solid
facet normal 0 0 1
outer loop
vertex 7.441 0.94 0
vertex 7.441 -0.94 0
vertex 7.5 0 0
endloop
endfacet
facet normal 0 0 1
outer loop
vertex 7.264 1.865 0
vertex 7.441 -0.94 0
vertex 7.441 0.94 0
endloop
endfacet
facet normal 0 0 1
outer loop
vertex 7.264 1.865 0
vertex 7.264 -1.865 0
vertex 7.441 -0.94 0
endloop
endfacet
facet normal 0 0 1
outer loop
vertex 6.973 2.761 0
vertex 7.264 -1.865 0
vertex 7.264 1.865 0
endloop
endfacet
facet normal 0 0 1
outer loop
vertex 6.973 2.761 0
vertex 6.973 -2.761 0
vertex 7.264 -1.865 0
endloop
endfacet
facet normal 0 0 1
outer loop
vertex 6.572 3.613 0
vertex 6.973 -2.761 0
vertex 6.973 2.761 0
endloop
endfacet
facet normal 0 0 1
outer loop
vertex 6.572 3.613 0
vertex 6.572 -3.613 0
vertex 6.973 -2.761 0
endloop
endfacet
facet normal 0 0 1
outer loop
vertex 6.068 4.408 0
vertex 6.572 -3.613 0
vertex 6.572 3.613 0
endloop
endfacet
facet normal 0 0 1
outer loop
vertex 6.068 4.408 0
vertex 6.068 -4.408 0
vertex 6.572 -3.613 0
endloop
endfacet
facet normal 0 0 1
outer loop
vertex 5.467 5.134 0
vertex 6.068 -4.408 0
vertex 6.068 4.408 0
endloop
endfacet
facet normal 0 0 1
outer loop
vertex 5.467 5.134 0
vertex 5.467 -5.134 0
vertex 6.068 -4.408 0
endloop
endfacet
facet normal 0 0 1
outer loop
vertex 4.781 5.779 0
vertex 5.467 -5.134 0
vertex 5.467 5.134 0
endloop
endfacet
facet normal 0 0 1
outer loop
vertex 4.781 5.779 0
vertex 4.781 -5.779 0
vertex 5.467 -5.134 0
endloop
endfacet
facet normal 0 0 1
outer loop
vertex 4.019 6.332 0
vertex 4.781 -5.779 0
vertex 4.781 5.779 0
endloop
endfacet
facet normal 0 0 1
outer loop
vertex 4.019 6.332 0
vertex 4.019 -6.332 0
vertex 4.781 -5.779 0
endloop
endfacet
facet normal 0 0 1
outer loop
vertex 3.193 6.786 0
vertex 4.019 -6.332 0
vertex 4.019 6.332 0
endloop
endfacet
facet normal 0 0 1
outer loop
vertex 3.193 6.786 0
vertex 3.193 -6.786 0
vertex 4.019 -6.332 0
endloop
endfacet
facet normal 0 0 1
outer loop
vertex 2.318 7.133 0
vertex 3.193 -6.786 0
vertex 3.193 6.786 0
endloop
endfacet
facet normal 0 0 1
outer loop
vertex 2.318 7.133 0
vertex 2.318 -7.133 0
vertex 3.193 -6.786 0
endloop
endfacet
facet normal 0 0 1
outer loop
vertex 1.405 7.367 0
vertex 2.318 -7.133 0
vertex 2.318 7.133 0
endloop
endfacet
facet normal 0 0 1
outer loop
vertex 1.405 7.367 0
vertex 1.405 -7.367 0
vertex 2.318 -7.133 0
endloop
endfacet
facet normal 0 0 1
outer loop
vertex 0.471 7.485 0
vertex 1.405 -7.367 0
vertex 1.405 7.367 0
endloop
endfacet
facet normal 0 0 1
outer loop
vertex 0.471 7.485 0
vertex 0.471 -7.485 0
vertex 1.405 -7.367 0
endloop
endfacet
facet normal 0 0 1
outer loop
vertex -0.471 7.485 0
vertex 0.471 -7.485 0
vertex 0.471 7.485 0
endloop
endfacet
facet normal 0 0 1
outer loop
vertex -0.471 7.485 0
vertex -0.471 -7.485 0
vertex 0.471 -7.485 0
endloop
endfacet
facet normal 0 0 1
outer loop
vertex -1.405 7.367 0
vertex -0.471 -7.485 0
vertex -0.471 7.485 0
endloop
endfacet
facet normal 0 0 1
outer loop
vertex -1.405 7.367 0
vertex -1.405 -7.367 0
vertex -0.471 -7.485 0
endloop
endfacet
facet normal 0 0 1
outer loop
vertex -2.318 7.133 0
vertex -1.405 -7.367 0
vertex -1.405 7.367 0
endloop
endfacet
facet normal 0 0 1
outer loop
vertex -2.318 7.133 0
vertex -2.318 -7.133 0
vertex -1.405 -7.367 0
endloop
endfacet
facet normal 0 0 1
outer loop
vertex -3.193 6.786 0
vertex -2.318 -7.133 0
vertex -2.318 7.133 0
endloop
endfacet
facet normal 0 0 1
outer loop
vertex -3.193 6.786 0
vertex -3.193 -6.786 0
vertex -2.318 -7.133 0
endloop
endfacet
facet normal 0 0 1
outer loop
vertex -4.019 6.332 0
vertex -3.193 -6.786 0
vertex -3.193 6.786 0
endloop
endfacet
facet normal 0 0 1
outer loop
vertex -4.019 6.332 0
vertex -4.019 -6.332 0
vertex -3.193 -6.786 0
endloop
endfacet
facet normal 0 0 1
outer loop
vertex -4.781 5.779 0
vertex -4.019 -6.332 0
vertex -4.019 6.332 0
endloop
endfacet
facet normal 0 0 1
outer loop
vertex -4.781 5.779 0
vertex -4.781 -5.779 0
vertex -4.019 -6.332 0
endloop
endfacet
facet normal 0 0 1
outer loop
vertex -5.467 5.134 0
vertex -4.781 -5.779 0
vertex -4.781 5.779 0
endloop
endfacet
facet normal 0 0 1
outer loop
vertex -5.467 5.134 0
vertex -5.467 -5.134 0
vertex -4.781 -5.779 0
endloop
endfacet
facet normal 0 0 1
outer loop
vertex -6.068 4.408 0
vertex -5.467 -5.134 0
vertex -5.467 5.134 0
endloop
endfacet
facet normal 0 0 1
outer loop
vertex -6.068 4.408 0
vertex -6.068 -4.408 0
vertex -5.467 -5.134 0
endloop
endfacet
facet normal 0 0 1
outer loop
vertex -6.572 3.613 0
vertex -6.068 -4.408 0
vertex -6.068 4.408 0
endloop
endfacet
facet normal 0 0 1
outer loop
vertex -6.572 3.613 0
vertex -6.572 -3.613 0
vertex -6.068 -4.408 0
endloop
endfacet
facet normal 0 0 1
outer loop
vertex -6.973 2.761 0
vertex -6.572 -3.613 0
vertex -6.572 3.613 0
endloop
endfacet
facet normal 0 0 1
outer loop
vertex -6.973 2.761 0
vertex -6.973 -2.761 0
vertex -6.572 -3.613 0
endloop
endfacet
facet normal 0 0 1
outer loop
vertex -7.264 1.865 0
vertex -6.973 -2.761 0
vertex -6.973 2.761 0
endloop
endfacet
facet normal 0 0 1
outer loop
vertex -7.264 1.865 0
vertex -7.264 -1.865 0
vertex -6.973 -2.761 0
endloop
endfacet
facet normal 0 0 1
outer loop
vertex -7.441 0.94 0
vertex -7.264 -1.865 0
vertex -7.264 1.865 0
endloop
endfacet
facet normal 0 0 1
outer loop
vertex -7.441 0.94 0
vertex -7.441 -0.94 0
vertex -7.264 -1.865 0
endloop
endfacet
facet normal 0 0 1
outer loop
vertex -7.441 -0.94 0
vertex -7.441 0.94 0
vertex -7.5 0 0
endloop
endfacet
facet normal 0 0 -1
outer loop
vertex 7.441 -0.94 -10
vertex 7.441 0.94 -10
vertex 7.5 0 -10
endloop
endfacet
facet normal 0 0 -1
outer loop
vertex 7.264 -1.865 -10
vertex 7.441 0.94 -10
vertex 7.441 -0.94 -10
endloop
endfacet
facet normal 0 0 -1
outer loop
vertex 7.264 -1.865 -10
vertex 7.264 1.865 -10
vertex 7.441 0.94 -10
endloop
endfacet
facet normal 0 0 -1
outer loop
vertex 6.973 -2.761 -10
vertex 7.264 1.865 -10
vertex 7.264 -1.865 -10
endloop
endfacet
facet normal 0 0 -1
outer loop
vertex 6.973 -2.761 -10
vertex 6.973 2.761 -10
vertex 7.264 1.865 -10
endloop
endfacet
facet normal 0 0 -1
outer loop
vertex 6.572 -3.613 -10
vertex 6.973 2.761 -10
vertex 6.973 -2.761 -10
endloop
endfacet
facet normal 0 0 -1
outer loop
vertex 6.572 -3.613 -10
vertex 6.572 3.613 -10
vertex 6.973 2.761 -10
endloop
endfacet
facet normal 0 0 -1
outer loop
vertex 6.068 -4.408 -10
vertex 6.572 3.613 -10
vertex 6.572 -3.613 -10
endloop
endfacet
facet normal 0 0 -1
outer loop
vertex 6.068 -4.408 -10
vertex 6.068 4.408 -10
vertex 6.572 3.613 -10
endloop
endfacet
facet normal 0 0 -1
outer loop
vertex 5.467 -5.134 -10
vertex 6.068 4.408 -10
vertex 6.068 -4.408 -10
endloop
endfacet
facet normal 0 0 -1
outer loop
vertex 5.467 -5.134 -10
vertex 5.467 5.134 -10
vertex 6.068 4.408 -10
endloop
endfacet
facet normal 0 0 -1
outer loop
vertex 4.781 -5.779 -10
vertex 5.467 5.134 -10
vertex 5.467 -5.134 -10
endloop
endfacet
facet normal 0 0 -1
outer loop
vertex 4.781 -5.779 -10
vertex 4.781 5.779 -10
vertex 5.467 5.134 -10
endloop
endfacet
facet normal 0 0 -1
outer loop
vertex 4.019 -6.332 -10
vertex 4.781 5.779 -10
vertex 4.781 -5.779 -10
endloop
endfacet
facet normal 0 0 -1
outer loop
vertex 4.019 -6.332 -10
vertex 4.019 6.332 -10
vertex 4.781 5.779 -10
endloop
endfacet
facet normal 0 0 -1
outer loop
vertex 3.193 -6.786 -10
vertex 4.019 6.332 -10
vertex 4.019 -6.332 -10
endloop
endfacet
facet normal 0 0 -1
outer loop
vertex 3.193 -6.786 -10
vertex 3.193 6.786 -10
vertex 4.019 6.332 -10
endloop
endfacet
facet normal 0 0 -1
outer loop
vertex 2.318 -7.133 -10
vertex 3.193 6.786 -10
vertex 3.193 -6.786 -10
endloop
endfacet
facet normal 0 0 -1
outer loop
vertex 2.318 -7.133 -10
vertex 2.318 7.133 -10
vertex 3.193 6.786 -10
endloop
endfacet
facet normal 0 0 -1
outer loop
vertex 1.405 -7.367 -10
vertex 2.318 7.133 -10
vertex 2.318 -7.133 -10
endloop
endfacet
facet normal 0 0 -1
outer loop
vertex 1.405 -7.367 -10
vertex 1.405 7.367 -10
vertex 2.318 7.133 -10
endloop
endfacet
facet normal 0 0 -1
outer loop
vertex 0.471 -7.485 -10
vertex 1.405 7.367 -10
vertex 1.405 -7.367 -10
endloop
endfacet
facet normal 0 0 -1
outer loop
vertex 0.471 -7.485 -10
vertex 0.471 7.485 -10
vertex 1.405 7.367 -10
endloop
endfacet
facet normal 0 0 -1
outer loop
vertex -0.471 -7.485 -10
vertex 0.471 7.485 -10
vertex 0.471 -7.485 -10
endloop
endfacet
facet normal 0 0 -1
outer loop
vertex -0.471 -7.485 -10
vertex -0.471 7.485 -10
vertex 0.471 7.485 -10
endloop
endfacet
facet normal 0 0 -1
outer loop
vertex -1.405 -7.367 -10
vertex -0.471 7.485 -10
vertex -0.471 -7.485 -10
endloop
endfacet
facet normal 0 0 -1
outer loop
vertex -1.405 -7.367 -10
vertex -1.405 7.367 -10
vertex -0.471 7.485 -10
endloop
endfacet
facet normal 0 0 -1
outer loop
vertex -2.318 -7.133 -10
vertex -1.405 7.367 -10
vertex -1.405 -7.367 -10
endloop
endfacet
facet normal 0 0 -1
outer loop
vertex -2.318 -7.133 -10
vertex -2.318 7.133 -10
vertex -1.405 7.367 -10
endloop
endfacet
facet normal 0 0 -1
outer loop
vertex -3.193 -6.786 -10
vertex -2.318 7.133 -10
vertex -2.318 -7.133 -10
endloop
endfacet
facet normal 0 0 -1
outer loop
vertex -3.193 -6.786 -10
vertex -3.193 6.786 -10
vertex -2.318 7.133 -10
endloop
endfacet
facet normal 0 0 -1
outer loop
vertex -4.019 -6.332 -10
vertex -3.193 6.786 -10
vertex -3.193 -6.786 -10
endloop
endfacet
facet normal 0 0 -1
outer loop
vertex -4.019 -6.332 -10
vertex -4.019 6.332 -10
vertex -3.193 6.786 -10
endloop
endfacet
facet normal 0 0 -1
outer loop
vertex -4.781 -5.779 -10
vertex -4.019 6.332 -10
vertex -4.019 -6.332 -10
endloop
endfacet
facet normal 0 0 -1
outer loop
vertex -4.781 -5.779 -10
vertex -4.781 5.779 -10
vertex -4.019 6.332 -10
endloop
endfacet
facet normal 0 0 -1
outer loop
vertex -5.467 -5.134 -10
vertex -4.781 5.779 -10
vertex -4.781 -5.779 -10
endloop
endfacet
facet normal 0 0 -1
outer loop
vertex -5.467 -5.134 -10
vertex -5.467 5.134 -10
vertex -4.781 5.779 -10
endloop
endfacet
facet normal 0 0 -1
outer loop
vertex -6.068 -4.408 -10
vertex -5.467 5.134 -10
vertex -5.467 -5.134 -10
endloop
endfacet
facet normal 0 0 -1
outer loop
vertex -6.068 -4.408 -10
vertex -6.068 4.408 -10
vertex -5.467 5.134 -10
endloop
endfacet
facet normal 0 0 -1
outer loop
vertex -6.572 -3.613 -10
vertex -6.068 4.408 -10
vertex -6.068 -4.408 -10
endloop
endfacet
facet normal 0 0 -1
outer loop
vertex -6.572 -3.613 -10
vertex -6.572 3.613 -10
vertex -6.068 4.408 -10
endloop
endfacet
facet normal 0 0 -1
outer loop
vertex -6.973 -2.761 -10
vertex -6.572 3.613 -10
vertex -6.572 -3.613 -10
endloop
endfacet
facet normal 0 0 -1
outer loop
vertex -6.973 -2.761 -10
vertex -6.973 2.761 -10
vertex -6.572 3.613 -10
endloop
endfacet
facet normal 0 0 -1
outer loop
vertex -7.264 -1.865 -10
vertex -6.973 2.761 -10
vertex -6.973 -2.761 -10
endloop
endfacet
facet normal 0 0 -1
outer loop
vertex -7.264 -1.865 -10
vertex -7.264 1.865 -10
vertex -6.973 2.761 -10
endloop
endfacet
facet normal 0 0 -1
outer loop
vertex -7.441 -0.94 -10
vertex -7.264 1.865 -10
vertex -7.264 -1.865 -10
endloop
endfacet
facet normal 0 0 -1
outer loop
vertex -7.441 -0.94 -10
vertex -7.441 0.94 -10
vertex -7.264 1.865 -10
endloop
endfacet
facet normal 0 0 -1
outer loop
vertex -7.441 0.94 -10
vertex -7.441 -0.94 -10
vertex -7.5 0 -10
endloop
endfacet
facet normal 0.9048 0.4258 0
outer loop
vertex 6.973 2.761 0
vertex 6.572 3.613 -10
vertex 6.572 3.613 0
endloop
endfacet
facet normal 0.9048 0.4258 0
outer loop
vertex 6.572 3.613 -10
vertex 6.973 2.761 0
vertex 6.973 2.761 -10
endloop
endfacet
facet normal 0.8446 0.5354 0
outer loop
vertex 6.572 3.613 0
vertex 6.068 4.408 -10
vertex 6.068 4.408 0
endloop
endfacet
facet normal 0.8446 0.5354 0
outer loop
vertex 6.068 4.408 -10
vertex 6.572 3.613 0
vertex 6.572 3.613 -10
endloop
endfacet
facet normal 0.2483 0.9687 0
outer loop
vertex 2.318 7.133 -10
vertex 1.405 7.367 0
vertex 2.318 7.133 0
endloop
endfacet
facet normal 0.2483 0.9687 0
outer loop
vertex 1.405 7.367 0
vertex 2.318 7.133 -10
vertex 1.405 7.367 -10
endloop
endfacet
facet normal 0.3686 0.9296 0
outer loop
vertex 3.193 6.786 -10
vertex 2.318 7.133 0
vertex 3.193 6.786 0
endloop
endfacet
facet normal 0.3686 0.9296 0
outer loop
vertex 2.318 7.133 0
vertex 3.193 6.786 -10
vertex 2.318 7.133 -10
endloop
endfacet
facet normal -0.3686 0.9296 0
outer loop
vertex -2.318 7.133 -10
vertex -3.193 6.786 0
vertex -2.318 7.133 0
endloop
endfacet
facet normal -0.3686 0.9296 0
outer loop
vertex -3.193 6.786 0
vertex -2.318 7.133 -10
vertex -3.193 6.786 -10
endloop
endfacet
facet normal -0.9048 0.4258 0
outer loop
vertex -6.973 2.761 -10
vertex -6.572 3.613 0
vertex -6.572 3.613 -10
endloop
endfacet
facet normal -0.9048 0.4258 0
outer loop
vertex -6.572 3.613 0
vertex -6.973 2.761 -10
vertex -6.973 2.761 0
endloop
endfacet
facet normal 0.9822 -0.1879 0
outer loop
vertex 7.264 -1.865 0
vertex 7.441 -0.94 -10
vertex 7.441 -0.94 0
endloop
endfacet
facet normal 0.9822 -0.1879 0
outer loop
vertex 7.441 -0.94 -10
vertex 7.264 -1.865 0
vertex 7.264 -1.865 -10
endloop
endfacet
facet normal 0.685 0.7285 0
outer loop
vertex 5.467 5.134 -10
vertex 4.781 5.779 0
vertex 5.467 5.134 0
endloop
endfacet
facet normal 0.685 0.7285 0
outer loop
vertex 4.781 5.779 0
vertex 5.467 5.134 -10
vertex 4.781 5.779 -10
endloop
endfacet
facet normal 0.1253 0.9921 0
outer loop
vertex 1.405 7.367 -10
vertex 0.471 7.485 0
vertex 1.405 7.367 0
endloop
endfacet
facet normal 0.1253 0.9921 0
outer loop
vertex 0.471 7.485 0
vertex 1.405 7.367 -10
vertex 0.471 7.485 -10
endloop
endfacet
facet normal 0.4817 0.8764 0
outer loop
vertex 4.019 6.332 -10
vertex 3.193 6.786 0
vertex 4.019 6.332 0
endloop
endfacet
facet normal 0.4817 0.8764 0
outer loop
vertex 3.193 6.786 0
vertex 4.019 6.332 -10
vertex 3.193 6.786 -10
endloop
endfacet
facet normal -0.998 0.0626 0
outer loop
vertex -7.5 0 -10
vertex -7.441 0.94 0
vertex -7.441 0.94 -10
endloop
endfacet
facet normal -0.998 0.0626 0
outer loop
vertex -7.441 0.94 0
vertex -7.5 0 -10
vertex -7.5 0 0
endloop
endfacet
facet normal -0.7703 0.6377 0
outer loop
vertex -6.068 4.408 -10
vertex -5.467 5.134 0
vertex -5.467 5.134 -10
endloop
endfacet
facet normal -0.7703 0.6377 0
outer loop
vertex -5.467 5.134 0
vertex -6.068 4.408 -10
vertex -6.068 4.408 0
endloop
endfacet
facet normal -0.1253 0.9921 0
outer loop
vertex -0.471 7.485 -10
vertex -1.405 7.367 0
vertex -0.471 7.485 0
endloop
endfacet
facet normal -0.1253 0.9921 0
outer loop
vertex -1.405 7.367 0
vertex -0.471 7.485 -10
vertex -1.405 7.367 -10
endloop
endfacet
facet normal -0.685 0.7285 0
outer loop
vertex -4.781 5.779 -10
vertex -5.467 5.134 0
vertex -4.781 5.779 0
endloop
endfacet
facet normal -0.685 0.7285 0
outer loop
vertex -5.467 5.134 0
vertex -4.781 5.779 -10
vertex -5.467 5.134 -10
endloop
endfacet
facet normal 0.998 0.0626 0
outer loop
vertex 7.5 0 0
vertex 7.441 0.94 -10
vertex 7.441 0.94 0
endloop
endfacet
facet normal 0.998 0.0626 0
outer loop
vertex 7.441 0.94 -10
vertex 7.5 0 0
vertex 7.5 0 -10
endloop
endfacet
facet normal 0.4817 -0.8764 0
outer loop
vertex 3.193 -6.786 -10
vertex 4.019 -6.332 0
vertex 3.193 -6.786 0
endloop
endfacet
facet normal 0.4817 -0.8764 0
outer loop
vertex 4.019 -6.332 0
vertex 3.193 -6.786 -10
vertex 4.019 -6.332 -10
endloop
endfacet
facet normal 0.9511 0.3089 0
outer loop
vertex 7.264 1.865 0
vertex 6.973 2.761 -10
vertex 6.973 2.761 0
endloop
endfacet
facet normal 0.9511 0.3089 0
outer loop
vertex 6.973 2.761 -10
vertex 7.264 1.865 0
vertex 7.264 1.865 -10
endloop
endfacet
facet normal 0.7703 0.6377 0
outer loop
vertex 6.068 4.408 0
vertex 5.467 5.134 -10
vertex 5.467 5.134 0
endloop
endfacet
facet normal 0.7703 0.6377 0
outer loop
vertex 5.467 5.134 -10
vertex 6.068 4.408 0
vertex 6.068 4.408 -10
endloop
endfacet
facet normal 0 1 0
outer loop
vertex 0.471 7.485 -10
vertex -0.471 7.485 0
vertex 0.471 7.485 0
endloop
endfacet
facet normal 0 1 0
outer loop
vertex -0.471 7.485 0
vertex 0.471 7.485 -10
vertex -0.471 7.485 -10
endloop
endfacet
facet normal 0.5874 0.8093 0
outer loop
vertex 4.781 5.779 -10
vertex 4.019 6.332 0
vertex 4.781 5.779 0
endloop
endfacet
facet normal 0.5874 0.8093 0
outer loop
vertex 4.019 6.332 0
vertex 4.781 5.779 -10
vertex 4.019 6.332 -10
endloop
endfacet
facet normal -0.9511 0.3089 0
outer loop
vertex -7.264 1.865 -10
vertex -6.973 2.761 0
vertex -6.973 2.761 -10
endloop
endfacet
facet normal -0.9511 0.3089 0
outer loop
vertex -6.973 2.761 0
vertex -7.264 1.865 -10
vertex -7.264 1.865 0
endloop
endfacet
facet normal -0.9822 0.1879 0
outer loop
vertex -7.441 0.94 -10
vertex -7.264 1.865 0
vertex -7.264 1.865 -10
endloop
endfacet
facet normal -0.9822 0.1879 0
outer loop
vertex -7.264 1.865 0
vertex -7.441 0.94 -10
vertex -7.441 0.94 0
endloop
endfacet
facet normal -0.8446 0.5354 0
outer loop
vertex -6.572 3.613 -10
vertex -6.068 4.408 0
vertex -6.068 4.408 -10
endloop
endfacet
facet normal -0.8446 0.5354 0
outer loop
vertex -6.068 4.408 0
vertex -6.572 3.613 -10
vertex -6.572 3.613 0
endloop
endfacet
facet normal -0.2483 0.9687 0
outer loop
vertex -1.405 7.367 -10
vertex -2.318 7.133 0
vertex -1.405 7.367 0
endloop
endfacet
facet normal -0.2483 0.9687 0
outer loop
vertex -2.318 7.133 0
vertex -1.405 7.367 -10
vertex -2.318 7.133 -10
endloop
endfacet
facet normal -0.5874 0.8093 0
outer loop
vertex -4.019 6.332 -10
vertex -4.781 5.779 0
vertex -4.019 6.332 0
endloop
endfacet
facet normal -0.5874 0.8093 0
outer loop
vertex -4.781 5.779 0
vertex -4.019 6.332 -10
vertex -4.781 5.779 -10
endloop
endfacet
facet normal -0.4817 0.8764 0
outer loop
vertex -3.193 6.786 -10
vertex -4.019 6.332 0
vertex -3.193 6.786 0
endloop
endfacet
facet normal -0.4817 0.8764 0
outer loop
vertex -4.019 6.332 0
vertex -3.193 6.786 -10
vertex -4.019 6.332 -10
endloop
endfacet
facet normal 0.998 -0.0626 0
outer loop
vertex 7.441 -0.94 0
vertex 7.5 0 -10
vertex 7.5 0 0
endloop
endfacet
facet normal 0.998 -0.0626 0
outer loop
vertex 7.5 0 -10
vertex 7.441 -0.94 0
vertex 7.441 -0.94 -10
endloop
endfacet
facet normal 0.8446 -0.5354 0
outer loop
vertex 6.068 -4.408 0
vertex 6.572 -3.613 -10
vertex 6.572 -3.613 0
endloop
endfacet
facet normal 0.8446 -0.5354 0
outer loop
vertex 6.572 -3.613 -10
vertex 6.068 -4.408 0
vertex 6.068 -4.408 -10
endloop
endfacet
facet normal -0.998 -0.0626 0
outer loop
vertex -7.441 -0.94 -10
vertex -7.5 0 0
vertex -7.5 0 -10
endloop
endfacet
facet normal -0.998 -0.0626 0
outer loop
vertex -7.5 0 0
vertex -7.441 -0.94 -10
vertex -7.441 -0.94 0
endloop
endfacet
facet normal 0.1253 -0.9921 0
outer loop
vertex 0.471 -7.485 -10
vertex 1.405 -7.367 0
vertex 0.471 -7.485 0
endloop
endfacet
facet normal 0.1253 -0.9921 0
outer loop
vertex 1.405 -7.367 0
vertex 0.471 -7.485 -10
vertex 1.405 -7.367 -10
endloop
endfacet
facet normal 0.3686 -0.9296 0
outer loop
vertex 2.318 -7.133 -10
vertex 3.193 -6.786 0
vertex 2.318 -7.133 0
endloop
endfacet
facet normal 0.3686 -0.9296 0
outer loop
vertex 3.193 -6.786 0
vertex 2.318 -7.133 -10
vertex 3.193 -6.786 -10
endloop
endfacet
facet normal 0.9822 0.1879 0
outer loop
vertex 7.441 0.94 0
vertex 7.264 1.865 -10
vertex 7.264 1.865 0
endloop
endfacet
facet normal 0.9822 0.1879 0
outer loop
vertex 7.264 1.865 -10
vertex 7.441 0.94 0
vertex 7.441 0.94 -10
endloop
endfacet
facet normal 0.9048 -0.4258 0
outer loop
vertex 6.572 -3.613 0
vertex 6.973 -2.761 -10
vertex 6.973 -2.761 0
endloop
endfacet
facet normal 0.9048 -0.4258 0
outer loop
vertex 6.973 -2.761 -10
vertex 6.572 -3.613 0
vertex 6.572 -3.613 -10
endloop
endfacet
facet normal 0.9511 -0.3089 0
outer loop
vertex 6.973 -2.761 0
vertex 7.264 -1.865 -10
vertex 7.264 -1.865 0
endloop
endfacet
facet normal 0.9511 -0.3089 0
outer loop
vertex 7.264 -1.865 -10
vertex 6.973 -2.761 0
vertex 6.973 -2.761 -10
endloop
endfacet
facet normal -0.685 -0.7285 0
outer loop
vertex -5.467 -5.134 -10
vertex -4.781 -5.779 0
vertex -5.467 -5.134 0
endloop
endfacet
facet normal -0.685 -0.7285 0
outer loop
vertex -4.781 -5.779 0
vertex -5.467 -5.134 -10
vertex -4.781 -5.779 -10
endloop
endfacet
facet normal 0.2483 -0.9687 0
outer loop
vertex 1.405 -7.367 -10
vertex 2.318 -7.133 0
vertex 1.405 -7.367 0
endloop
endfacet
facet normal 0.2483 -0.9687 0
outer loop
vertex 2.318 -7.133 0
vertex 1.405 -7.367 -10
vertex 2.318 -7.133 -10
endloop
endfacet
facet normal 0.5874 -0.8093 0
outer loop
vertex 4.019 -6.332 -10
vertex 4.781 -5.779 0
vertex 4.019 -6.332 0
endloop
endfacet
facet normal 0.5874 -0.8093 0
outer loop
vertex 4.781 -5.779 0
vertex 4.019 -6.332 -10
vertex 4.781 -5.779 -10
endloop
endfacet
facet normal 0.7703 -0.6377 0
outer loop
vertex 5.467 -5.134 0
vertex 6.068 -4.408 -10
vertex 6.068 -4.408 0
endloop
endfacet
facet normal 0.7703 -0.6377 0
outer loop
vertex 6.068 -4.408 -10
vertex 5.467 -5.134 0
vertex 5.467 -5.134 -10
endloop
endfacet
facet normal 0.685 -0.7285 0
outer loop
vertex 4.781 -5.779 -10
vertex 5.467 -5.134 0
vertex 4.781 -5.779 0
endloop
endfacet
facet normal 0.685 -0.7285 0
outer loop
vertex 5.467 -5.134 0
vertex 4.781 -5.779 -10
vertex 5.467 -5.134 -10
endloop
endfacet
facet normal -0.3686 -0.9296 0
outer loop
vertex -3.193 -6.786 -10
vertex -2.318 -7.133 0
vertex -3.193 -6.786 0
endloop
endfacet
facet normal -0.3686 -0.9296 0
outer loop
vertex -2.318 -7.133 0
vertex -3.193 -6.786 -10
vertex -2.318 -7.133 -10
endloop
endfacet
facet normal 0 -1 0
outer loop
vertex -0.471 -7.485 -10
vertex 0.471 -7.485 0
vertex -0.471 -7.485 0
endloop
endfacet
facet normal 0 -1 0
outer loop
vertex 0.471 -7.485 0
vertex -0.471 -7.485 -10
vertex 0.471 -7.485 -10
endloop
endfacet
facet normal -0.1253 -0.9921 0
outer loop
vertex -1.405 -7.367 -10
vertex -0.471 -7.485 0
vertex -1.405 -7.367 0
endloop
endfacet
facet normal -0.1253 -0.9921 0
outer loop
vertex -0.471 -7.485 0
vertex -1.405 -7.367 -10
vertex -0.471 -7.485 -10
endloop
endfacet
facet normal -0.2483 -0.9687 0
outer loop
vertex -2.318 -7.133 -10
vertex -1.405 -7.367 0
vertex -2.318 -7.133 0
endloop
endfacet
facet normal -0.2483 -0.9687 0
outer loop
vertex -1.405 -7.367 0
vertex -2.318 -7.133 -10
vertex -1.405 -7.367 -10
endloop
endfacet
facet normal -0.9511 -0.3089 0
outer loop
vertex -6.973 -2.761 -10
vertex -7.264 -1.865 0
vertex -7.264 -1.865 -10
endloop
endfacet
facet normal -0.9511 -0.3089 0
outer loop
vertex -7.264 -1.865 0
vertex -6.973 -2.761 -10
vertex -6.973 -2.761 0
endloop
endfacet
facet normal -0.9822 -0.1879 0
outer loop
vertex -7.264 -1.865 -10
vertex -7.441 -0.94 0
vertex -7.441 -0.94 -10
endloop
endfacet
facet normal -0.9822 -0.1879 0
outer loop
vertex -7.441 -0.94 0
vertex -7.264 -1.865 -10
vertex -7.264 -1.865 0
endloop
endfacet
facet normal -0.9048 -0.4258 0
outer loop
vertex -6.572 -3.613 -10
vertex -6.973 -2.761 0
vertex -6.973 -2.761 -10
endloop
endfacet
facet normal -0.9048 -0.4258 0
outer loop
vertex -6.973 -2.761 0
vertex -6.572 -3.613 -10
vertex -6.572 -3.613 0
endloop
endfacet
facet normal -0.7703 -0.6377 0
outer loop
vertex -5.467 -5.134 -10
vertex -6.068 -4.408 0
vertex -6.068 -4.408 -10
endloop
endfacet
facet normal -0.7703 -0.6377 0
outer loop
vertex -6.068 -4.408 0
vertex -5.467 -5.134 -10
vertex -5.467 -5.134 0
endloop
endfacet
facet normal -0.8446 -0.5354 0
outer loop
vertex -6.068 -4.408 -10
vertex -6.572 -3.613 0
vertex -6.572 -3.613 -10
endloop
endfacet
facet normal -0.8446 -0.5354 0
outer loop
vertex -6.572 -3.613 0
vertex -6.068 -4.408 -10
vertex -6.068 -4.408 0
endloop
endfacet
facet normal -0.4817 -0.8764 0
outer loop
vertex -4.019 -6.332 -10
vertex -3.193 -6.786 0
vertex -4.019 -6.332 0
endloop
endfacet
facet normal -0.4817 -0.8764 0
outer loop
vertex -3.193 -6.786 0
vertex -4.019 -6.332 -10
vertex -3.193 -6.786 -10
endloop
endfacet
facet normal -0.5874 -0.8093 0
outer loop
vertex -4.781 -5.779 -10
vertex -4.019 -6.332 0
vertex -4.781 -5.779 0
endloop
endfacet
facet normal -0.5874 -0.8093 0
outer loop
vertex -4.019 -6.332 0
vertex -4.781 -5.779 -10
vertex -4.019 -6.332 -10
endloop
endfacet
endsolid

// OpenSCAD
$fn = 50;


difference() {
	union() {
		translate(v = [0, 0, 0]) {
			rotate(a = [0, 0, 0]) {
				difference() {
					union() {
						#translate(v = [0, 0, -10.0000000000]) {
							cylinder(h = 10, r = 2.0000000000);
						}
						#translate(v = [0, 0, -10.0000000000]) {
							cylinder(h = 10, r = 2.2500000000);
						}
						#translate(v = [0, 0, -3.7000000000]) {
							cylinder(h = 3.7000000000, r = 7.5000000000, r1 = 2.0000000000, r2 = 5.4000000000);
						}
						#translate(v = [0, 0, -10.0000000000]) {
							cylinder(h = 10, r = 2.0000000000);
						}
					}
					union();
				}
			}
		}
		translate(v = [0, 0, -10.0000000000]) {
			cylinder(h = 10, r = 7.5000000000);
		}
	}
	union();
}
